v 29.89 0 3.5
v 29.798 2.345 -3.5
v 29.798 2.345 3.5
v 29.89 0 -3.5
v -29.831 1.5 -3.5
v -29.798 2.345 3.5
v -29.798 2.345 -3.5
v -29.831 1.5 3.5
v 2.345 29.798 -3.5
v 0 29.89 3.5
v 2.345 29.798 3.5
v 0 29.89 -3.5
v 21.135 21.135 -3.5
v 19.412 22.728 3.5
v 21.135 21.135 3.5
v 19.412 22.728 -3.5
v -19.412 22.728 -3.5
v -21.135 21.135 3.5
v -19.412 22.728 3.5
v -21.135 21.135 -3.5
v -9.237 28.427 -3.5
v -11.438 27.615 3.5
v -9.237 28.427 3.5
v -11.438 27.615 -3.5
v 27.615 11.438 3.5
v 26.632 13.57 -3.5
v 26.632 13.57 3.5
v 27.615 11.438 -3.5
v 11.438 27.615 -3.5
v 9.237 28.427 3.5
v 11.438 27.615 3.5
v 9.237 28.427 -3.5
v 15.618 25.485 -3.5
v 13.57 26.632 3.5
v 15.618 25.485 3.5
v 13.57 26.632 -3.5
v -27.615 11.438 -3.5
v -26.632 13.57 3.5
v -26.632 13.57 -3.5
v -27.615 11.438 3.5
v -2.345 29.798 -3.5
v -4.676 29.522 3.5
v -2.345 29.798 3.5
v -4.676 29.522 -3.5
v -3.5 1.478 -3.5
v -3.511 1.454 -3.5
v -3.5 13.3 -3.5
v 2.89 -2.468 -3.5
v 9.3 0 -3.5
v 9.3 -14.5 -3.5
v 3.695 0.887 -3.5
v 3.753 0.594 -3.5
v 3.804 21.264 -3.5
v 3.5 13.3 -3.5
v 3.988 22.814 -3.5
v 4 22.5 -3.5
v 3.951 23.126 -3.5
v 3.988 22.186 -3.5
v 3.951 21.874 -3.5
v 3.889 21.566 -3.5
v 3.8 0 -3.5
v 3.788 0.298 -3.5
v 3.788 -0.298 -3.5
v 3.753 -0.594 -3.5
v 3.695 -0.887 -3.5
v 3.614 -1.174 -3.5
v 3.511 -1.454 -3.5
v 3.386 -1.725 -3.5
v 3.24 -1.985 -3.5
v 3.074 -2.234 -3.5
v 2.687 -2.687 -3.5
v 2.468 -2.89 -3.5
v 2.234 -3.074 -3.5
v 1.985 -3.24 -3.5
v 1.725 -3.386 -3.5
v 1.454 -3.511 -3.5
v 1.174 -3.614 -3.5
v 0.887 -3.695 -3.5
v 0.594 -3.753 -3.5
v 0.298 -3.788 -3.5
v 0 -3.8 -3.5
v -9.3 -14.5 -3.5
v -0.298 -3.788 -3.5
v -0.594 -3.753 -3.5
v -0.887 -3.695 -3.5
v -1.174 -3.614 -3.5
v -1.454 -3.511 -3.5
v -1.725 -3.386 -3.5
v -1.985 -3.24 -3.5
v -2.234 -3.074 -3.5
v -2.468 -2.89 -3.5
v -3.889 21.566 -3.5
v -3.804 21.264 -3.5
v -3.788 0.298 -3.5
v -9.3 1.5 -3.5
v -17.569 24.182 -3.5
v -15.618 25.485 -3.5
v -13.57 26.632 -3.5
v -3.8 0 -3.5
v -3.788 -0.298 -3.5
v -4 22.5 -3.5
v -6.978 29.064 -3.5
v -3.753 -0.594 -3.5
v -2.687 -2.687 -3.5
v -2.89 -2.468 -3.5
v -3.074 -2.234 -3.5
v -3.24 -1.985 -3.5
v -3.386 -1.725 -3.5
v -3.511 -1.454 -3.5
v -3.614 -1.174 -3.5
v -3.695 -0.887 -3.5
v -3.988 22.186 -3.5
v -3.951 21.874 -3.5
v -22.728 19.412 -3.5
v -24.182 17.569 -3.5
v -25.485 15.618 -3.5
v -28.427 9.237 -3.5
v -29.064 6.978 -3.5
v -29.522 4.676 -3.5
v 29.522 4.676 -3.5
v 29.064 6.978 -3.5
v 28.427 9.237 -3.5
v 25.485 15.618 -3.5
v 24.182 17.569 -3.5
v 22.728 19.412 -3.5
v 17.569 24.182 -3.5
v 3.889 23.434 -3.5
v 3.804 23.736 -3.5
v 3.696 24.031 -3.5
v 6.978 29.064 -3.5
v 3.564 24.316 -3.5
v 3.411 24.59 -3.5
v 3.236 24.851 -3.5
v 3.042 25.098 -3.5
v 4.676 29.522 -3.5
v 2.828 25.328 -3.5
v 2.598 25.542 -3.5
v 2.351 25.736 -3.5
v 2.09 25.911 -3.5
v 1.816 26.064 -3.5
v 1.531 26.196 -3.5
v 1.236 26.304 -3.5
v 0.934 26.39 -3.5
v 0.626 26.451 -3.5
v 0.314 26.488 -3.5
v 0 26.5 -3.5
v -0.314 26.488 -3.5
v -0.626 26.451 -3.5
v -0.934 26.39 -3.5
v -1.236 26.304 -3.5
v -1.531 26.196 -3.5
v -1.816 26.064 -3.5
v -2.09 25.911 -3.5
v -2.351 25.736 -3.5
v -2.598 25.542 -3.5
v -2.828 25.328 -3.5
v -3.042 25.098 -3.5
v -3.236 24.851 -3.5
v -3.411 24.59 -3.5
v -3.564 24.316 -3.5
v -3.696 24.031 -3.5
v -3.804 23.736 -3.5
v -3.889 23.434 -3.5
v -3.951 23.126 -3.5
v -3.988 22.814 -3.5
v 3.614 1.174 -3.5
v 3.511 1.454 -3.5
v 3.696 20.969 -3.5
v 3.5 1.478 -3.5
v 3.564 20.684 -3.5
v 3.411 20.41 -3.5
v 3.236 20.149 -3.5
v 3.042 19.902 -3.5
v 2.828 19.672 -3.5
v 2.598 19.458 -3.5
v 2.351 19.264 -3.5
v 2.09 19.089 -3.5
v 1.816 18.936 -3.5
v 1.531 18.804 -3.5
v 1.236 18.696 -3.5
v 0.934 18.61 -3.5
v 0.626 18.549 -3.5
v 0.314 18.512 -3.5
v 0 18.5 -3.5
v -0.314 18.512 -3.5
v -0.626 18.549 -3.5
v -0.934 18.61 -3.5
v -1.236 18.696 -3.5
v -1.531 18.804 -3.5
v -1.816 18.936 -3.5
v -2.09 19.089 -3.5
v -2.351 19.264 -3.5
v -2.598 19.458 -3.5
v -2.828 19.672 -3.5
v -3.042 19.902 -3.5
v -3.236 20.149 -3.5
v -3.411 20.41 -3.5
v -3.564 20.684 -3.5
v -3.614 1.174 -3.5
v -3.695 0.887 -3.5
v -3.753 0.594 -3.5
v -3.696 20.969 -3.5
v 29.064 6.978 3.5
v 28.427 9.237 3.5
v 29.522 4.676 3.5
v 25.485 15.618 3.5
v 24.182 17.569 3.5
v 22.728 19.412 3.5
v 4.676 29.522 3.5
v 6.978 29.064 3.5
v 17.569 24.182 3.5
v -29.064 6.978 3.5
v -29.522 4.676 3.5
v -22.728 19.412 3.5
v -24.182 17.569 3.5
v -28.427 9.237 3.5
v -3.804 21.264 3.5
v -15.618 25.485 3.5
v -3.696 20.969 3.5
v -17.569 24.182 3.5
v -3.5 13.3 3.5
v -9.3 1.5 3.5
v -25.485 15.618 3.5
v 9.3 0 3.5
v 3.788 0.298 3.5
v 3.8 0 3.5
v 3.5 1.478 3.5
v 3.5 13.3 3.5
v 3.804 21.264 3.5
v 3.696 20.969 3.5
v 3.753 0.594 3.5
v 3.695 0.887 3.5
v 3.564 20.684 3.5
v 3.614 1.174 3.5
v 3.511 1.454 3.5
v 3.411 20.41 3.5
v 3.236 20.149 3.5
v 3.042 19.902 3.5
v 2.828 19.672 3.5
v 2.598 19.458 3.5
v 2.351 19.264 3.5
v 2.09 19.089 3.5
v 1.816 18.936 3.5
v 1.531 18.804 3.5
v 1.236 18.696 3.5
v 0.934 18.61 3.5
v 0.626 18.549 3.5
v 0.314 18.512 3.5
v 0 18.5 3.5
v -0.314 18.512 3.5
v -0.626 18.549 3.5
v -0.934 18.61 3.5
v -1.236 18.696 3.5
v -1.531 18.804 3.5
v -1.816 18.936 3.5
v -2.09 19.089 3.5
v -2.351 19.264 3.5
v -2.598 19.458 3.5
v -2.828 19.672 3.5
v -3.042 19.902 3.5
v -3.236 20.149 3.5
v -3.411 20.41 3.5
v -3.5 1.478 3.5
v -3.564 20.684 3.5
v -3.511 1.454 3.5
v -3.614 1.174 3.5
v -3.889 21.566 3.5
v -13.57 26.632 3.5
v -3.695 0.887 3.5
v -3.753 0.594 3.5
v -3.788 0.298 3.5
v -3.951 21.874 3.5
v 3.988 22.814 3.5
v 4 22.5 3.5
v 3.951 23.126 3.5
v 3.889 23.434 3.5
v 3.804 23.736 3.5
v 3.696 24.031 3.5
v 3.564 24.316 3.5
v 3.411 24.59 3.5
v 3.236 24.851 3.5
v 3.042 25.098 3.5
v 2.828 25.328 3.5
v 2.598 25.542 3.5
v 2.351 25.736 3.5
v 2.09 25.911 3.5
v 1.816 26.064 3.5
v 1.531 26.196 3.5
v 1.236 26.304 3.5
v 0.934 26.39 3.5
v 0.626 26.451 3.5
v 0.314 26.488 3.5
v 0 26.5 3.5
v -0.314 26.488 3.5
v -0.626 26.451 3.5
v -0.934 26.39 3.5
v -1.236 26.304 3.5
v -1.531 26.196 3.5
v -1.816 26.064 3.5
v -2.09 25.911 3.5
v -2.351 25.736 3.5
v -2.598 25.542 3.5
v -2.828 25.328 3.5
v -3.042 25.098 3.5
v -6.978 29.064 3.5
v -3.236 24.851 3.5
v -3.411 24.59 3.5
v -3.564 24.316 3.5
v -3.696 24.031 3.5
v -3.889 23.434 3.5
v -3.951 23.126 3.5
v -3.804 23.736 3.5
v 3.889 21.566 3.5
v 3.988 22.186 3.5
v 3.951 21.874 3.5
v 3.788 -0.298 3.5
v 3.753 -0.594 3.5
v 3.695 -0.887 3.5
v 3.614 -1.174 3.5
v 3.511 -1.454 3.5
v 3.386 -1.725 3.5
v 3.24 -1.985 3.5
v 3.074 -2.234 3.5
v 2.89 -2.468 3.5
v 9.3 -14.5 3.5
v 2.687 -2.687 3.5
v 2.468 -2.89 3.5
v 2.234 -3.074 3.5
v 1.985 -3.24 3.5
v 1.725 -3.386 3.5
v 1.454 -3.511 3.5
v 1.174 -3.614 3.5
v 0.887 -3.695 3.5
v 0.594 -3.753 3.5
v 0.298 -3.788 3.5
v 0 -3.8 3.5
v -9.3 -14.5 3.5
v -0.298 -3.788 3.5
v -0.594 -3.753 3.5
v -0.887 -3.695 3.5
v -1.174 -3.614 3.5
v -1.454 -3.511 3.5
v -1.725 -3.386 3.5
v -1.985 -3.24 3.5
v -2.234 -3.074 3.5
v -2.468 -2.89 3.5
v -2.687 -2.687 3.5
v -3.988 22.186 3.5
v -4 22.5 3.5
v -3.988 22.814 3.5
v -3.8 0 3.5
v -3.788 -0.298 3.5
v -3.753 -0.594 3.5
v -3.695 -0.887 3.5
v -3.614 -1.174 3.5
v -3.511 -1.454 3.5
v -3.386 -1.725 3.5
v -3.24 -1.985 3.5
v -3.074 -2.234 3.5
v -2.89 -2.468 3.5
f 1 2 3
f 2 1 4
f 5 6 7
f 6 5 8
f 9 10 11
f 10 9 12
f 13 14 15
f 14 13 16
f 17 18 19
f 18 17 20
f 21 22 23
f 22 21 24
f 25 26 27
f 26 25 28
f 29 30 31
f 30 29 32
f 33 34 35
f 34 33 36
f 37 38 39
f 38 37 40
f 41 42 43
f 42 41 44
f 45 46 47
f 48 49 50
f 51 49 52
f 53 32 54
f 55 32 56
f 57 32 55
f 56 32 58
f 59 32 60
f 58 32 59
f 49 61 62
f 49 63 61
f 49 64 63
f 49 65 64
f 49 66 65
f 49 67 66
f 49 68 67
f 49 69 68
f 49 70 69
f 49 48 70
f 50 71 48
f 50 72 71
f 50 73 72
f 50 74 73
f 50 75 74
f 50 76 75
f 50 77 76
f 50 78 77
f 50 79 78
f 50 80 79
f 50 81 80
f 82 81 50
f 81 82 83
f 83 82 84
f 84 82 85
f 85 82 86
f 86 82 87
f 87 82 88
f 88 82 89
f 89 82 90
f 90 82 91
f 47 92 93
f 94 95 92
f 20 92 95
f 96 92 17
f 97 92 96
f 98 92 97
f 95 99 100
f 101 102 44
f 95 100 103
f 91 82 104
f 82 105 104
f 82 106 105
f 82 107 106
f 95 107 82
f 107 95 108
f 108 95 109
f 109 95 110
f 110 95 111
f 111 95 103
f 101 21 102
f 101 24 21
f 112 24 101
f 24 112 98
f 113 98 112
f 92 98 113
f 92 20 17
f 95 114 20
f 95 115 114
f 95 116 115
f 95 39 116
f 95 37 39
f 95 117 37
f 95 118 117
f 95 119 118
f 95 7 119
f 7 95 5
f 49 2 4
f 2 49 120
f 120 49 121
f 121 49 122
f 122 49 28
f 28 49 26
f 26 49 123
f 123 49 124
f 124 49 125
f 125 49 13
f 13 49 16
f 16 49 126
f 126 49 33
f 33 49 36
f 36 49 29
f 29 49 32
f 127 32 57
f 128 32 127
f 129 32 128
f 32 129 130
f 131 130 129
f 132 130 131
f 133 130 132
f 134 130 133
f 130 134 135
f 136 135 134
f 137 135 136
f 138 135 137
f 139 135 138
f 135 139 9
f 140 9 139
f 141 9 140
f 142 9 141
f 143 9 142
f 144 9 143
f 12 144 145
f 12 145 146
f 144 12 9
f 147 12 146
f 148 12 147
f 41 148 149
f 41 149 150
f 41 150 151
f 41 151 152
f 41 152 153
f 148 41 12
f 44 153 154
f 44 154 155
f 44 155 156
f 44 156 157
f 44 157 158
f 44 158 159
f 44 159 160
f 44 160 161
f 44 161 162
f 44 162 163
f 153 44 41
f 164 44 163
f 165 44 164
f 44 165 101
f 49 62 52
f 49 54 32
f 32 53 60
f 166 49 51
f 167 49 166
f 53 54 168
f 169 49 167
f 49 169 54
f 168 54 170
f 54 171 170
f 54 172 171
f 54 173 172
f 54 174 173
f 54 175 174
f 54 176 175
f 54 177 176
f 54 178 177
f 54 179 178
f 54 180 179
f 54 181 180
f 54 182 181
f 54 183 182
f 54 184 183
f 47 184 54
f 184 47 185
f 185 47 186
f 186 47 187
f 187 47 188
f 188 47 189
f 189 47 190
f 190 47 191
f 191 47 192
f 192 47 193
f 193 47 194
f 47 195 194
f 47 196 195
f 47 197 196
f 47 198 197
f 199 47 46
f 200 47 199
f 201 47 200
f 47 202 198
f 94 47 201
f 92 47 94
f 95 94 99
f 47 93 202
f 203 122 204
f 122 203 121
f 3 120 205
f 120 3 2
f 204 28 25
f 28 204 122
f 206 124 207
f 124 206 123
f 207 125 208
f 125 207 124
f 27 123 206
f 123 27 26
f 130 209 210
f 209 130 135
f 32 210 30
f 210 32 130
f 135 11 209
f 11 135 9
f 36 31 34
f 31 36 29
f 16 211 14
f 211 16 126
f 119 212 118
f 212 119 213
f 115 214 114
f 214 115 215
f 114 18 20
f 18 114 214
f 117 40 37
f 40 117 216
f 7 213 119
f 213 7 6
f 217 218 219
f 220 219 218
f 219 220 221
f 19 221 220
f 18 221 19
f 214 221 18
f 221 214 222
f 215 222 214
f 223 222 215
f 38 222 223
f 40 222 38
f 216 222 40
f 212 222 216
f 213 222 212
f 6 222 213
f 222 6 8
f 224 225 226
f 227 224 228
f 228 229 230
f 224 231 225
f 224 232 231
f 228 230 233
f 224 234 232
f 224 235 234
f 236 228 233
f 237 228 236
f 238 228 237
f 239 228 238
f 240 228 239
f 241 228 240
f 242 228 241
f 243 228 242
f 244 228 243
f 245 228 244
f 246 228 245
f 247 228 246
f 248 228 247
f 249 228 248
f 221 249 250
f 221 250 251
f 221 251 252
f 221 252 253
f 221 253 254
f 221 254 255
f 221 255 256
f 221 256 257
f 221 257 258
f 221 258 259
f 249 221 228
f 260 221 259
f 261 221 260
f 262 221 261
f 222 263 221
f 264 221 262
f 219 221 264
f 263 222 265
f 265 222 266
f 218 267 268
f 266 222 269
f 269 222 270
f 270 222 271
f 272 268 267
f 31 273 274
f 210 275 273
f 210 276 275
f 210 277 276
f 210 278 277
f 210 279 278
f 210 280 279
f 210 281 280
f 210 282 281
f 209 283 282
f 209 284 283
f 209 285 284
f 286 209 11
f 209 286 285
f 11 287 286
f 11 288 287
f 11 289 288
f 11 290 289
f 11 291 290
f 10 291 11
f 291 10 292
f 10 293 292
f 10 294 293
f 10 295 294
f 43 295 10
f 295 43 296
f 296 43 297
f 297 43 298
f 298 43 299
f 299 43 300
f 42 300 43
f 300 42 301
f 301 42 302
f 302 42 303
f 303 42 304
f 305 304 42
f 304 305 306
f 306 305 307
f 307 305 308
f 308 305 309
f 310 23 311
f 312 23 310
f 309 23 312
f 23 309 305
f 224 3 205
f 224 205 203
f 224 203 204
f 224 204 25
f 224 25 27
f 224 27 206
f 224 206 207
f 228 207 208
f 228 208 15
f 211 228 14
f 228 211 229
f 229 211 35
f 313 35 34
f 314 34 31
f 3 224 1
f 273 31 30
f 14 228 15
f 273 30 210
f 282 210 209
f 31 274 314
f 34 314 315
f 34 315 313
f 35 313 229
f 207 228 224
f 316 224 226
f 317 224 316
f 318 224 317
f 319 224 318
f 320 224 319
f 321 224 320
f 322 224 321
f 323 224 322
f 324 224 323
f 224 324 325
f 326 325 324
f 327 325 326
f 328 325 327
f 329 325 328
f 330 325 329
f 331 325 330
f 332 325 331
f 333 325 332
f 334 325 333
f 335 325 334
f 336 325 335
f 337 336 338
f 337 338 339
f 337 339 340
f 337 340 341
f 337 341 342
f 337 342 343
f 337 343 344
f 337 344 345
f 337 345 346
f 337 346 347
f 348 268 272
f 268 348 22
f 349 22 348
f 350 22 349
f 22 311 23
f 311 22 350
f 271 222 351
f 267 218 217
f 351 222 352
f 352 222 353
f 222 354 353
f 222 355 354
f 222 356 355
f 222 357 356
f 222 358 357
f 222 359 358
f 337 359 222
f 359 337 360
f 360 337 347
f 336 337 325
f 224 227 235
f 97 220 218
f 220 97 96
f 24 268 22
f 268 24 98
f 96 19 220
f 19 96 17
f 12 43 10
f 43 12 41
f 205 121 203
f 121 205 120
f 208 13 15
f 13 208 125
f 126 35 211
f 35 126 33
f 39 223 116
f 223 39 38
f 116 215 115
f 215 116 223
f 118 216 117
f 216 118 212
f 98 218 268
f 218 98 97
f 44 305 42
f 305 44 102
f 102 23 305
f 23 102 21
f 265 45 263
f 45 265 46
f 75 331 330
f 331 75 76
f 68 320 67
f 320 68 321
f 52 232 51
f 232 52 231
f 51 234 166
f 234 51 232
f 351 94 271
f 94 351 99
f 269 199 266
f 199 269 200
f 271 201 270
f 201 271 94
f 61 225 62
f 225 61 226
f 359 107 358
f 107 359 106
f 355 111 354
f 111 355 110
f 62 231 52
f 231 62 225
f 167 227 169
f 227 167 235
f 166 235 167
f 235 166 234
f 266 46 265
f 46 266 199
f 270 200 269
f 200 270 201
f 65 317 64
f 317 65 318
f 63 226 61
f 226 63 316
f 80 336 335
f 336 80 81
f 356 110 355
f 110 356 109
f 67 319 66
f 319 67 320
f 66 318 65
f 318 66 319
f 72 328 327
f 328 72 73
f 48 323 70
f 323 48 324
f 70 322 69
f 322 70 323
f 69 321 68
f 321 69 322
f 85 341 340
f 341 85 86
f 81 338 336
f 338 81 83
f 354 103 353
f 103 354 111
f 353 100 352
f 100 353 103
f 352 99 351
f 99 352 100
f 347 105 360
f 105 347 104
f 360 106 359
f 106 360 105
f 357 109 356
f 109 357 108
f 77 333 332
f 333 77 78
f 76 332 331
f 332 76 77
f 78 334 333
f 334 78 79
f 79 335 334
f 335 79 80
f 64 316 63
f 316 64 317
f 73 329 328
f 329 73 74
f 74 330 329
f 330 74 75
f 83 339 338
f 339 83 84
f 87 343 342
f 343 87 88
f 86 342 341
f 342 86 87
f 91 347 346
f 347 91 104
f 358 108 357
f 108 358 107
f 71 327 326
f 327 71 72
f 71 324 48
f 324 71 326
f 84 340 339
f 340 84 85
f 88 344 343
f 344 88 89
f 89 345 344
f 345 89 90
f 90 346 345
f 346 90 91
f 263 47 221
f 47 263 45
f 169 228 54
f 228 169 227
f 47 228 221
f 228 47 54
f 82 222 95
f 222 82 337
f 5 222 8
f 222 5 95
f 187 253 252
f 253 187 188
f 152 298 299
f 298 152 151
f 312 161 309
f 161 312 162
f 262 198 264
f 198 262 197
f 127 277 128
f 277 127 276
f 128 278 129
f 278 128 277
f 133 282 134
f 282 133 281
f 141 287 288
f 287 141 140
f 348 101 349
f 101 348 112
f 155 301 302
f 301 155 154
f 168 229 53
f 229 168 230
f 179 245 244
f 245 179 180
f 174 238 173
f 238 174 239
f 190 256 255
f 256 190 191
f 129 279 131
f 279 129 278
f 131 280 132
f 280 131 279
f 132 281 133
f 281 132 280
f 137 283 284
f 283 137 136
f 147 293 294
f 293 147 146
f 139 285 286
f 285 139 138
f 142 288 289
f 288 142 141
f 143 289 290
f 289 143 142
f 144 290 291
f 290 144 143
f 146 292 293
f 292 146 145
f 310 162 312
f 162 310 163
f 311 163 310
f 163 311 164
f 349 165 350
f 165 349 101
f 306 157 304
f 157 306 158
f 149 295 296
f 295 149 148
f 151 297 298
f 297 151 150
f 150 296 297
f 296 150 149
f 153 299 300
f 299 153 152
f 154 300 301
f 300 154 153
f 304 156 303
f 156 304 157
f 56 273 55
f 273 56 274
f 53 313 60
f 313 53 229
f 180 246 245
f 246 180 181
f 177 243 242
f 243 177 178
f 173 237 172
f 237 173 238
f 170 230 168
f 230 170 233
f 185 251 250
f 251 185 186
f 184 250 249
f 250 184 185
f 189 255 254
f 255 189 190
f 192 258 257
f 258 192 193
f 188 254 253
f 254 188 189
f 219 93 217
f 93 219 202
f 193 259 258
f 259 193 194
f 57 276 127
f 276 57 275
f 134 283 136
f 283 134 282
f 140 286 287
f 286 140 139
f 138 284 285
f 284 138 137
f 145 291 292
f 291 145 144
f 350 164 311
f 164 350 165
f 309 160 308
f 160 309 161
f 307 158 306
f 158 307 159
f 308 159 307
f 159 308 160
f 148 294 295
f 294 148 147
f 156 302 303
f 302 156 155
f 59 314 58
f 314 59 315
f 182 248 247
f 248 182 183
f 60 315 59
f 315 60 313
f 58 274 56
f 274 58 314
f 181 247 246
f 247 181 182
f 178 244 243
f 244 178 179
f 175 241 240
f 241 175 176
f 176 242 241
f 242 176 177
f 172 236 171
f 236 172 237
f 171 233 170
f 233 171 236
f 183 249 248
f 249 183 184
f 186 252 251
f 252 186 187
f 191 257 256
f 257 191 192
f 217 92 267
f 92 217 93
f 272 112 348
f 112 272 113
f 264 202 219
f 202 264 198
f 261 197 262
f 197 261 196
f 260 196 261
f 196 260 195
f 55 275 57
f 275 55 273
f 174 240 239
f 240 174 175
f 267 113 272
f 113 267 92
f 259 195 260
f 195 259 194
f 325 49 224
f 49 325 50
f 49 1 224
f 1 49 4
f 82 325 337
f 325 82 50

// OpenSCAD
difference() {

union() {

cylinder(r=29.89, h=7 , center= true, $fn=80);
// translate([0,0,3]) cylinder(r=14.25, h=0.5, center=true, $fn=80); 
  //translate([-18.8,1, 3]) cube([21.8,2,1.5], center=true); 
   //translate([18.8,1,3]) cube([21.8,2,5], center=true);
   
    
}

translate([0,0,0]) cylinder(r=3.8, h=30, center=true, $fn=80);
 translate([0,6.3,1.5])cube ([7,14,11], center=true);
  translate([-24.3,-13.5,0]) cube([30,30,10], center=true);
   translate([0,22.5,0]) #cylinder(r=4, h=10, center=true, $fn=80);
    translate([24.3,-15,0]) cube([30,30,10], center=true);
     translate([0,-25,0]) cube([20,21,10], center=true);
}
